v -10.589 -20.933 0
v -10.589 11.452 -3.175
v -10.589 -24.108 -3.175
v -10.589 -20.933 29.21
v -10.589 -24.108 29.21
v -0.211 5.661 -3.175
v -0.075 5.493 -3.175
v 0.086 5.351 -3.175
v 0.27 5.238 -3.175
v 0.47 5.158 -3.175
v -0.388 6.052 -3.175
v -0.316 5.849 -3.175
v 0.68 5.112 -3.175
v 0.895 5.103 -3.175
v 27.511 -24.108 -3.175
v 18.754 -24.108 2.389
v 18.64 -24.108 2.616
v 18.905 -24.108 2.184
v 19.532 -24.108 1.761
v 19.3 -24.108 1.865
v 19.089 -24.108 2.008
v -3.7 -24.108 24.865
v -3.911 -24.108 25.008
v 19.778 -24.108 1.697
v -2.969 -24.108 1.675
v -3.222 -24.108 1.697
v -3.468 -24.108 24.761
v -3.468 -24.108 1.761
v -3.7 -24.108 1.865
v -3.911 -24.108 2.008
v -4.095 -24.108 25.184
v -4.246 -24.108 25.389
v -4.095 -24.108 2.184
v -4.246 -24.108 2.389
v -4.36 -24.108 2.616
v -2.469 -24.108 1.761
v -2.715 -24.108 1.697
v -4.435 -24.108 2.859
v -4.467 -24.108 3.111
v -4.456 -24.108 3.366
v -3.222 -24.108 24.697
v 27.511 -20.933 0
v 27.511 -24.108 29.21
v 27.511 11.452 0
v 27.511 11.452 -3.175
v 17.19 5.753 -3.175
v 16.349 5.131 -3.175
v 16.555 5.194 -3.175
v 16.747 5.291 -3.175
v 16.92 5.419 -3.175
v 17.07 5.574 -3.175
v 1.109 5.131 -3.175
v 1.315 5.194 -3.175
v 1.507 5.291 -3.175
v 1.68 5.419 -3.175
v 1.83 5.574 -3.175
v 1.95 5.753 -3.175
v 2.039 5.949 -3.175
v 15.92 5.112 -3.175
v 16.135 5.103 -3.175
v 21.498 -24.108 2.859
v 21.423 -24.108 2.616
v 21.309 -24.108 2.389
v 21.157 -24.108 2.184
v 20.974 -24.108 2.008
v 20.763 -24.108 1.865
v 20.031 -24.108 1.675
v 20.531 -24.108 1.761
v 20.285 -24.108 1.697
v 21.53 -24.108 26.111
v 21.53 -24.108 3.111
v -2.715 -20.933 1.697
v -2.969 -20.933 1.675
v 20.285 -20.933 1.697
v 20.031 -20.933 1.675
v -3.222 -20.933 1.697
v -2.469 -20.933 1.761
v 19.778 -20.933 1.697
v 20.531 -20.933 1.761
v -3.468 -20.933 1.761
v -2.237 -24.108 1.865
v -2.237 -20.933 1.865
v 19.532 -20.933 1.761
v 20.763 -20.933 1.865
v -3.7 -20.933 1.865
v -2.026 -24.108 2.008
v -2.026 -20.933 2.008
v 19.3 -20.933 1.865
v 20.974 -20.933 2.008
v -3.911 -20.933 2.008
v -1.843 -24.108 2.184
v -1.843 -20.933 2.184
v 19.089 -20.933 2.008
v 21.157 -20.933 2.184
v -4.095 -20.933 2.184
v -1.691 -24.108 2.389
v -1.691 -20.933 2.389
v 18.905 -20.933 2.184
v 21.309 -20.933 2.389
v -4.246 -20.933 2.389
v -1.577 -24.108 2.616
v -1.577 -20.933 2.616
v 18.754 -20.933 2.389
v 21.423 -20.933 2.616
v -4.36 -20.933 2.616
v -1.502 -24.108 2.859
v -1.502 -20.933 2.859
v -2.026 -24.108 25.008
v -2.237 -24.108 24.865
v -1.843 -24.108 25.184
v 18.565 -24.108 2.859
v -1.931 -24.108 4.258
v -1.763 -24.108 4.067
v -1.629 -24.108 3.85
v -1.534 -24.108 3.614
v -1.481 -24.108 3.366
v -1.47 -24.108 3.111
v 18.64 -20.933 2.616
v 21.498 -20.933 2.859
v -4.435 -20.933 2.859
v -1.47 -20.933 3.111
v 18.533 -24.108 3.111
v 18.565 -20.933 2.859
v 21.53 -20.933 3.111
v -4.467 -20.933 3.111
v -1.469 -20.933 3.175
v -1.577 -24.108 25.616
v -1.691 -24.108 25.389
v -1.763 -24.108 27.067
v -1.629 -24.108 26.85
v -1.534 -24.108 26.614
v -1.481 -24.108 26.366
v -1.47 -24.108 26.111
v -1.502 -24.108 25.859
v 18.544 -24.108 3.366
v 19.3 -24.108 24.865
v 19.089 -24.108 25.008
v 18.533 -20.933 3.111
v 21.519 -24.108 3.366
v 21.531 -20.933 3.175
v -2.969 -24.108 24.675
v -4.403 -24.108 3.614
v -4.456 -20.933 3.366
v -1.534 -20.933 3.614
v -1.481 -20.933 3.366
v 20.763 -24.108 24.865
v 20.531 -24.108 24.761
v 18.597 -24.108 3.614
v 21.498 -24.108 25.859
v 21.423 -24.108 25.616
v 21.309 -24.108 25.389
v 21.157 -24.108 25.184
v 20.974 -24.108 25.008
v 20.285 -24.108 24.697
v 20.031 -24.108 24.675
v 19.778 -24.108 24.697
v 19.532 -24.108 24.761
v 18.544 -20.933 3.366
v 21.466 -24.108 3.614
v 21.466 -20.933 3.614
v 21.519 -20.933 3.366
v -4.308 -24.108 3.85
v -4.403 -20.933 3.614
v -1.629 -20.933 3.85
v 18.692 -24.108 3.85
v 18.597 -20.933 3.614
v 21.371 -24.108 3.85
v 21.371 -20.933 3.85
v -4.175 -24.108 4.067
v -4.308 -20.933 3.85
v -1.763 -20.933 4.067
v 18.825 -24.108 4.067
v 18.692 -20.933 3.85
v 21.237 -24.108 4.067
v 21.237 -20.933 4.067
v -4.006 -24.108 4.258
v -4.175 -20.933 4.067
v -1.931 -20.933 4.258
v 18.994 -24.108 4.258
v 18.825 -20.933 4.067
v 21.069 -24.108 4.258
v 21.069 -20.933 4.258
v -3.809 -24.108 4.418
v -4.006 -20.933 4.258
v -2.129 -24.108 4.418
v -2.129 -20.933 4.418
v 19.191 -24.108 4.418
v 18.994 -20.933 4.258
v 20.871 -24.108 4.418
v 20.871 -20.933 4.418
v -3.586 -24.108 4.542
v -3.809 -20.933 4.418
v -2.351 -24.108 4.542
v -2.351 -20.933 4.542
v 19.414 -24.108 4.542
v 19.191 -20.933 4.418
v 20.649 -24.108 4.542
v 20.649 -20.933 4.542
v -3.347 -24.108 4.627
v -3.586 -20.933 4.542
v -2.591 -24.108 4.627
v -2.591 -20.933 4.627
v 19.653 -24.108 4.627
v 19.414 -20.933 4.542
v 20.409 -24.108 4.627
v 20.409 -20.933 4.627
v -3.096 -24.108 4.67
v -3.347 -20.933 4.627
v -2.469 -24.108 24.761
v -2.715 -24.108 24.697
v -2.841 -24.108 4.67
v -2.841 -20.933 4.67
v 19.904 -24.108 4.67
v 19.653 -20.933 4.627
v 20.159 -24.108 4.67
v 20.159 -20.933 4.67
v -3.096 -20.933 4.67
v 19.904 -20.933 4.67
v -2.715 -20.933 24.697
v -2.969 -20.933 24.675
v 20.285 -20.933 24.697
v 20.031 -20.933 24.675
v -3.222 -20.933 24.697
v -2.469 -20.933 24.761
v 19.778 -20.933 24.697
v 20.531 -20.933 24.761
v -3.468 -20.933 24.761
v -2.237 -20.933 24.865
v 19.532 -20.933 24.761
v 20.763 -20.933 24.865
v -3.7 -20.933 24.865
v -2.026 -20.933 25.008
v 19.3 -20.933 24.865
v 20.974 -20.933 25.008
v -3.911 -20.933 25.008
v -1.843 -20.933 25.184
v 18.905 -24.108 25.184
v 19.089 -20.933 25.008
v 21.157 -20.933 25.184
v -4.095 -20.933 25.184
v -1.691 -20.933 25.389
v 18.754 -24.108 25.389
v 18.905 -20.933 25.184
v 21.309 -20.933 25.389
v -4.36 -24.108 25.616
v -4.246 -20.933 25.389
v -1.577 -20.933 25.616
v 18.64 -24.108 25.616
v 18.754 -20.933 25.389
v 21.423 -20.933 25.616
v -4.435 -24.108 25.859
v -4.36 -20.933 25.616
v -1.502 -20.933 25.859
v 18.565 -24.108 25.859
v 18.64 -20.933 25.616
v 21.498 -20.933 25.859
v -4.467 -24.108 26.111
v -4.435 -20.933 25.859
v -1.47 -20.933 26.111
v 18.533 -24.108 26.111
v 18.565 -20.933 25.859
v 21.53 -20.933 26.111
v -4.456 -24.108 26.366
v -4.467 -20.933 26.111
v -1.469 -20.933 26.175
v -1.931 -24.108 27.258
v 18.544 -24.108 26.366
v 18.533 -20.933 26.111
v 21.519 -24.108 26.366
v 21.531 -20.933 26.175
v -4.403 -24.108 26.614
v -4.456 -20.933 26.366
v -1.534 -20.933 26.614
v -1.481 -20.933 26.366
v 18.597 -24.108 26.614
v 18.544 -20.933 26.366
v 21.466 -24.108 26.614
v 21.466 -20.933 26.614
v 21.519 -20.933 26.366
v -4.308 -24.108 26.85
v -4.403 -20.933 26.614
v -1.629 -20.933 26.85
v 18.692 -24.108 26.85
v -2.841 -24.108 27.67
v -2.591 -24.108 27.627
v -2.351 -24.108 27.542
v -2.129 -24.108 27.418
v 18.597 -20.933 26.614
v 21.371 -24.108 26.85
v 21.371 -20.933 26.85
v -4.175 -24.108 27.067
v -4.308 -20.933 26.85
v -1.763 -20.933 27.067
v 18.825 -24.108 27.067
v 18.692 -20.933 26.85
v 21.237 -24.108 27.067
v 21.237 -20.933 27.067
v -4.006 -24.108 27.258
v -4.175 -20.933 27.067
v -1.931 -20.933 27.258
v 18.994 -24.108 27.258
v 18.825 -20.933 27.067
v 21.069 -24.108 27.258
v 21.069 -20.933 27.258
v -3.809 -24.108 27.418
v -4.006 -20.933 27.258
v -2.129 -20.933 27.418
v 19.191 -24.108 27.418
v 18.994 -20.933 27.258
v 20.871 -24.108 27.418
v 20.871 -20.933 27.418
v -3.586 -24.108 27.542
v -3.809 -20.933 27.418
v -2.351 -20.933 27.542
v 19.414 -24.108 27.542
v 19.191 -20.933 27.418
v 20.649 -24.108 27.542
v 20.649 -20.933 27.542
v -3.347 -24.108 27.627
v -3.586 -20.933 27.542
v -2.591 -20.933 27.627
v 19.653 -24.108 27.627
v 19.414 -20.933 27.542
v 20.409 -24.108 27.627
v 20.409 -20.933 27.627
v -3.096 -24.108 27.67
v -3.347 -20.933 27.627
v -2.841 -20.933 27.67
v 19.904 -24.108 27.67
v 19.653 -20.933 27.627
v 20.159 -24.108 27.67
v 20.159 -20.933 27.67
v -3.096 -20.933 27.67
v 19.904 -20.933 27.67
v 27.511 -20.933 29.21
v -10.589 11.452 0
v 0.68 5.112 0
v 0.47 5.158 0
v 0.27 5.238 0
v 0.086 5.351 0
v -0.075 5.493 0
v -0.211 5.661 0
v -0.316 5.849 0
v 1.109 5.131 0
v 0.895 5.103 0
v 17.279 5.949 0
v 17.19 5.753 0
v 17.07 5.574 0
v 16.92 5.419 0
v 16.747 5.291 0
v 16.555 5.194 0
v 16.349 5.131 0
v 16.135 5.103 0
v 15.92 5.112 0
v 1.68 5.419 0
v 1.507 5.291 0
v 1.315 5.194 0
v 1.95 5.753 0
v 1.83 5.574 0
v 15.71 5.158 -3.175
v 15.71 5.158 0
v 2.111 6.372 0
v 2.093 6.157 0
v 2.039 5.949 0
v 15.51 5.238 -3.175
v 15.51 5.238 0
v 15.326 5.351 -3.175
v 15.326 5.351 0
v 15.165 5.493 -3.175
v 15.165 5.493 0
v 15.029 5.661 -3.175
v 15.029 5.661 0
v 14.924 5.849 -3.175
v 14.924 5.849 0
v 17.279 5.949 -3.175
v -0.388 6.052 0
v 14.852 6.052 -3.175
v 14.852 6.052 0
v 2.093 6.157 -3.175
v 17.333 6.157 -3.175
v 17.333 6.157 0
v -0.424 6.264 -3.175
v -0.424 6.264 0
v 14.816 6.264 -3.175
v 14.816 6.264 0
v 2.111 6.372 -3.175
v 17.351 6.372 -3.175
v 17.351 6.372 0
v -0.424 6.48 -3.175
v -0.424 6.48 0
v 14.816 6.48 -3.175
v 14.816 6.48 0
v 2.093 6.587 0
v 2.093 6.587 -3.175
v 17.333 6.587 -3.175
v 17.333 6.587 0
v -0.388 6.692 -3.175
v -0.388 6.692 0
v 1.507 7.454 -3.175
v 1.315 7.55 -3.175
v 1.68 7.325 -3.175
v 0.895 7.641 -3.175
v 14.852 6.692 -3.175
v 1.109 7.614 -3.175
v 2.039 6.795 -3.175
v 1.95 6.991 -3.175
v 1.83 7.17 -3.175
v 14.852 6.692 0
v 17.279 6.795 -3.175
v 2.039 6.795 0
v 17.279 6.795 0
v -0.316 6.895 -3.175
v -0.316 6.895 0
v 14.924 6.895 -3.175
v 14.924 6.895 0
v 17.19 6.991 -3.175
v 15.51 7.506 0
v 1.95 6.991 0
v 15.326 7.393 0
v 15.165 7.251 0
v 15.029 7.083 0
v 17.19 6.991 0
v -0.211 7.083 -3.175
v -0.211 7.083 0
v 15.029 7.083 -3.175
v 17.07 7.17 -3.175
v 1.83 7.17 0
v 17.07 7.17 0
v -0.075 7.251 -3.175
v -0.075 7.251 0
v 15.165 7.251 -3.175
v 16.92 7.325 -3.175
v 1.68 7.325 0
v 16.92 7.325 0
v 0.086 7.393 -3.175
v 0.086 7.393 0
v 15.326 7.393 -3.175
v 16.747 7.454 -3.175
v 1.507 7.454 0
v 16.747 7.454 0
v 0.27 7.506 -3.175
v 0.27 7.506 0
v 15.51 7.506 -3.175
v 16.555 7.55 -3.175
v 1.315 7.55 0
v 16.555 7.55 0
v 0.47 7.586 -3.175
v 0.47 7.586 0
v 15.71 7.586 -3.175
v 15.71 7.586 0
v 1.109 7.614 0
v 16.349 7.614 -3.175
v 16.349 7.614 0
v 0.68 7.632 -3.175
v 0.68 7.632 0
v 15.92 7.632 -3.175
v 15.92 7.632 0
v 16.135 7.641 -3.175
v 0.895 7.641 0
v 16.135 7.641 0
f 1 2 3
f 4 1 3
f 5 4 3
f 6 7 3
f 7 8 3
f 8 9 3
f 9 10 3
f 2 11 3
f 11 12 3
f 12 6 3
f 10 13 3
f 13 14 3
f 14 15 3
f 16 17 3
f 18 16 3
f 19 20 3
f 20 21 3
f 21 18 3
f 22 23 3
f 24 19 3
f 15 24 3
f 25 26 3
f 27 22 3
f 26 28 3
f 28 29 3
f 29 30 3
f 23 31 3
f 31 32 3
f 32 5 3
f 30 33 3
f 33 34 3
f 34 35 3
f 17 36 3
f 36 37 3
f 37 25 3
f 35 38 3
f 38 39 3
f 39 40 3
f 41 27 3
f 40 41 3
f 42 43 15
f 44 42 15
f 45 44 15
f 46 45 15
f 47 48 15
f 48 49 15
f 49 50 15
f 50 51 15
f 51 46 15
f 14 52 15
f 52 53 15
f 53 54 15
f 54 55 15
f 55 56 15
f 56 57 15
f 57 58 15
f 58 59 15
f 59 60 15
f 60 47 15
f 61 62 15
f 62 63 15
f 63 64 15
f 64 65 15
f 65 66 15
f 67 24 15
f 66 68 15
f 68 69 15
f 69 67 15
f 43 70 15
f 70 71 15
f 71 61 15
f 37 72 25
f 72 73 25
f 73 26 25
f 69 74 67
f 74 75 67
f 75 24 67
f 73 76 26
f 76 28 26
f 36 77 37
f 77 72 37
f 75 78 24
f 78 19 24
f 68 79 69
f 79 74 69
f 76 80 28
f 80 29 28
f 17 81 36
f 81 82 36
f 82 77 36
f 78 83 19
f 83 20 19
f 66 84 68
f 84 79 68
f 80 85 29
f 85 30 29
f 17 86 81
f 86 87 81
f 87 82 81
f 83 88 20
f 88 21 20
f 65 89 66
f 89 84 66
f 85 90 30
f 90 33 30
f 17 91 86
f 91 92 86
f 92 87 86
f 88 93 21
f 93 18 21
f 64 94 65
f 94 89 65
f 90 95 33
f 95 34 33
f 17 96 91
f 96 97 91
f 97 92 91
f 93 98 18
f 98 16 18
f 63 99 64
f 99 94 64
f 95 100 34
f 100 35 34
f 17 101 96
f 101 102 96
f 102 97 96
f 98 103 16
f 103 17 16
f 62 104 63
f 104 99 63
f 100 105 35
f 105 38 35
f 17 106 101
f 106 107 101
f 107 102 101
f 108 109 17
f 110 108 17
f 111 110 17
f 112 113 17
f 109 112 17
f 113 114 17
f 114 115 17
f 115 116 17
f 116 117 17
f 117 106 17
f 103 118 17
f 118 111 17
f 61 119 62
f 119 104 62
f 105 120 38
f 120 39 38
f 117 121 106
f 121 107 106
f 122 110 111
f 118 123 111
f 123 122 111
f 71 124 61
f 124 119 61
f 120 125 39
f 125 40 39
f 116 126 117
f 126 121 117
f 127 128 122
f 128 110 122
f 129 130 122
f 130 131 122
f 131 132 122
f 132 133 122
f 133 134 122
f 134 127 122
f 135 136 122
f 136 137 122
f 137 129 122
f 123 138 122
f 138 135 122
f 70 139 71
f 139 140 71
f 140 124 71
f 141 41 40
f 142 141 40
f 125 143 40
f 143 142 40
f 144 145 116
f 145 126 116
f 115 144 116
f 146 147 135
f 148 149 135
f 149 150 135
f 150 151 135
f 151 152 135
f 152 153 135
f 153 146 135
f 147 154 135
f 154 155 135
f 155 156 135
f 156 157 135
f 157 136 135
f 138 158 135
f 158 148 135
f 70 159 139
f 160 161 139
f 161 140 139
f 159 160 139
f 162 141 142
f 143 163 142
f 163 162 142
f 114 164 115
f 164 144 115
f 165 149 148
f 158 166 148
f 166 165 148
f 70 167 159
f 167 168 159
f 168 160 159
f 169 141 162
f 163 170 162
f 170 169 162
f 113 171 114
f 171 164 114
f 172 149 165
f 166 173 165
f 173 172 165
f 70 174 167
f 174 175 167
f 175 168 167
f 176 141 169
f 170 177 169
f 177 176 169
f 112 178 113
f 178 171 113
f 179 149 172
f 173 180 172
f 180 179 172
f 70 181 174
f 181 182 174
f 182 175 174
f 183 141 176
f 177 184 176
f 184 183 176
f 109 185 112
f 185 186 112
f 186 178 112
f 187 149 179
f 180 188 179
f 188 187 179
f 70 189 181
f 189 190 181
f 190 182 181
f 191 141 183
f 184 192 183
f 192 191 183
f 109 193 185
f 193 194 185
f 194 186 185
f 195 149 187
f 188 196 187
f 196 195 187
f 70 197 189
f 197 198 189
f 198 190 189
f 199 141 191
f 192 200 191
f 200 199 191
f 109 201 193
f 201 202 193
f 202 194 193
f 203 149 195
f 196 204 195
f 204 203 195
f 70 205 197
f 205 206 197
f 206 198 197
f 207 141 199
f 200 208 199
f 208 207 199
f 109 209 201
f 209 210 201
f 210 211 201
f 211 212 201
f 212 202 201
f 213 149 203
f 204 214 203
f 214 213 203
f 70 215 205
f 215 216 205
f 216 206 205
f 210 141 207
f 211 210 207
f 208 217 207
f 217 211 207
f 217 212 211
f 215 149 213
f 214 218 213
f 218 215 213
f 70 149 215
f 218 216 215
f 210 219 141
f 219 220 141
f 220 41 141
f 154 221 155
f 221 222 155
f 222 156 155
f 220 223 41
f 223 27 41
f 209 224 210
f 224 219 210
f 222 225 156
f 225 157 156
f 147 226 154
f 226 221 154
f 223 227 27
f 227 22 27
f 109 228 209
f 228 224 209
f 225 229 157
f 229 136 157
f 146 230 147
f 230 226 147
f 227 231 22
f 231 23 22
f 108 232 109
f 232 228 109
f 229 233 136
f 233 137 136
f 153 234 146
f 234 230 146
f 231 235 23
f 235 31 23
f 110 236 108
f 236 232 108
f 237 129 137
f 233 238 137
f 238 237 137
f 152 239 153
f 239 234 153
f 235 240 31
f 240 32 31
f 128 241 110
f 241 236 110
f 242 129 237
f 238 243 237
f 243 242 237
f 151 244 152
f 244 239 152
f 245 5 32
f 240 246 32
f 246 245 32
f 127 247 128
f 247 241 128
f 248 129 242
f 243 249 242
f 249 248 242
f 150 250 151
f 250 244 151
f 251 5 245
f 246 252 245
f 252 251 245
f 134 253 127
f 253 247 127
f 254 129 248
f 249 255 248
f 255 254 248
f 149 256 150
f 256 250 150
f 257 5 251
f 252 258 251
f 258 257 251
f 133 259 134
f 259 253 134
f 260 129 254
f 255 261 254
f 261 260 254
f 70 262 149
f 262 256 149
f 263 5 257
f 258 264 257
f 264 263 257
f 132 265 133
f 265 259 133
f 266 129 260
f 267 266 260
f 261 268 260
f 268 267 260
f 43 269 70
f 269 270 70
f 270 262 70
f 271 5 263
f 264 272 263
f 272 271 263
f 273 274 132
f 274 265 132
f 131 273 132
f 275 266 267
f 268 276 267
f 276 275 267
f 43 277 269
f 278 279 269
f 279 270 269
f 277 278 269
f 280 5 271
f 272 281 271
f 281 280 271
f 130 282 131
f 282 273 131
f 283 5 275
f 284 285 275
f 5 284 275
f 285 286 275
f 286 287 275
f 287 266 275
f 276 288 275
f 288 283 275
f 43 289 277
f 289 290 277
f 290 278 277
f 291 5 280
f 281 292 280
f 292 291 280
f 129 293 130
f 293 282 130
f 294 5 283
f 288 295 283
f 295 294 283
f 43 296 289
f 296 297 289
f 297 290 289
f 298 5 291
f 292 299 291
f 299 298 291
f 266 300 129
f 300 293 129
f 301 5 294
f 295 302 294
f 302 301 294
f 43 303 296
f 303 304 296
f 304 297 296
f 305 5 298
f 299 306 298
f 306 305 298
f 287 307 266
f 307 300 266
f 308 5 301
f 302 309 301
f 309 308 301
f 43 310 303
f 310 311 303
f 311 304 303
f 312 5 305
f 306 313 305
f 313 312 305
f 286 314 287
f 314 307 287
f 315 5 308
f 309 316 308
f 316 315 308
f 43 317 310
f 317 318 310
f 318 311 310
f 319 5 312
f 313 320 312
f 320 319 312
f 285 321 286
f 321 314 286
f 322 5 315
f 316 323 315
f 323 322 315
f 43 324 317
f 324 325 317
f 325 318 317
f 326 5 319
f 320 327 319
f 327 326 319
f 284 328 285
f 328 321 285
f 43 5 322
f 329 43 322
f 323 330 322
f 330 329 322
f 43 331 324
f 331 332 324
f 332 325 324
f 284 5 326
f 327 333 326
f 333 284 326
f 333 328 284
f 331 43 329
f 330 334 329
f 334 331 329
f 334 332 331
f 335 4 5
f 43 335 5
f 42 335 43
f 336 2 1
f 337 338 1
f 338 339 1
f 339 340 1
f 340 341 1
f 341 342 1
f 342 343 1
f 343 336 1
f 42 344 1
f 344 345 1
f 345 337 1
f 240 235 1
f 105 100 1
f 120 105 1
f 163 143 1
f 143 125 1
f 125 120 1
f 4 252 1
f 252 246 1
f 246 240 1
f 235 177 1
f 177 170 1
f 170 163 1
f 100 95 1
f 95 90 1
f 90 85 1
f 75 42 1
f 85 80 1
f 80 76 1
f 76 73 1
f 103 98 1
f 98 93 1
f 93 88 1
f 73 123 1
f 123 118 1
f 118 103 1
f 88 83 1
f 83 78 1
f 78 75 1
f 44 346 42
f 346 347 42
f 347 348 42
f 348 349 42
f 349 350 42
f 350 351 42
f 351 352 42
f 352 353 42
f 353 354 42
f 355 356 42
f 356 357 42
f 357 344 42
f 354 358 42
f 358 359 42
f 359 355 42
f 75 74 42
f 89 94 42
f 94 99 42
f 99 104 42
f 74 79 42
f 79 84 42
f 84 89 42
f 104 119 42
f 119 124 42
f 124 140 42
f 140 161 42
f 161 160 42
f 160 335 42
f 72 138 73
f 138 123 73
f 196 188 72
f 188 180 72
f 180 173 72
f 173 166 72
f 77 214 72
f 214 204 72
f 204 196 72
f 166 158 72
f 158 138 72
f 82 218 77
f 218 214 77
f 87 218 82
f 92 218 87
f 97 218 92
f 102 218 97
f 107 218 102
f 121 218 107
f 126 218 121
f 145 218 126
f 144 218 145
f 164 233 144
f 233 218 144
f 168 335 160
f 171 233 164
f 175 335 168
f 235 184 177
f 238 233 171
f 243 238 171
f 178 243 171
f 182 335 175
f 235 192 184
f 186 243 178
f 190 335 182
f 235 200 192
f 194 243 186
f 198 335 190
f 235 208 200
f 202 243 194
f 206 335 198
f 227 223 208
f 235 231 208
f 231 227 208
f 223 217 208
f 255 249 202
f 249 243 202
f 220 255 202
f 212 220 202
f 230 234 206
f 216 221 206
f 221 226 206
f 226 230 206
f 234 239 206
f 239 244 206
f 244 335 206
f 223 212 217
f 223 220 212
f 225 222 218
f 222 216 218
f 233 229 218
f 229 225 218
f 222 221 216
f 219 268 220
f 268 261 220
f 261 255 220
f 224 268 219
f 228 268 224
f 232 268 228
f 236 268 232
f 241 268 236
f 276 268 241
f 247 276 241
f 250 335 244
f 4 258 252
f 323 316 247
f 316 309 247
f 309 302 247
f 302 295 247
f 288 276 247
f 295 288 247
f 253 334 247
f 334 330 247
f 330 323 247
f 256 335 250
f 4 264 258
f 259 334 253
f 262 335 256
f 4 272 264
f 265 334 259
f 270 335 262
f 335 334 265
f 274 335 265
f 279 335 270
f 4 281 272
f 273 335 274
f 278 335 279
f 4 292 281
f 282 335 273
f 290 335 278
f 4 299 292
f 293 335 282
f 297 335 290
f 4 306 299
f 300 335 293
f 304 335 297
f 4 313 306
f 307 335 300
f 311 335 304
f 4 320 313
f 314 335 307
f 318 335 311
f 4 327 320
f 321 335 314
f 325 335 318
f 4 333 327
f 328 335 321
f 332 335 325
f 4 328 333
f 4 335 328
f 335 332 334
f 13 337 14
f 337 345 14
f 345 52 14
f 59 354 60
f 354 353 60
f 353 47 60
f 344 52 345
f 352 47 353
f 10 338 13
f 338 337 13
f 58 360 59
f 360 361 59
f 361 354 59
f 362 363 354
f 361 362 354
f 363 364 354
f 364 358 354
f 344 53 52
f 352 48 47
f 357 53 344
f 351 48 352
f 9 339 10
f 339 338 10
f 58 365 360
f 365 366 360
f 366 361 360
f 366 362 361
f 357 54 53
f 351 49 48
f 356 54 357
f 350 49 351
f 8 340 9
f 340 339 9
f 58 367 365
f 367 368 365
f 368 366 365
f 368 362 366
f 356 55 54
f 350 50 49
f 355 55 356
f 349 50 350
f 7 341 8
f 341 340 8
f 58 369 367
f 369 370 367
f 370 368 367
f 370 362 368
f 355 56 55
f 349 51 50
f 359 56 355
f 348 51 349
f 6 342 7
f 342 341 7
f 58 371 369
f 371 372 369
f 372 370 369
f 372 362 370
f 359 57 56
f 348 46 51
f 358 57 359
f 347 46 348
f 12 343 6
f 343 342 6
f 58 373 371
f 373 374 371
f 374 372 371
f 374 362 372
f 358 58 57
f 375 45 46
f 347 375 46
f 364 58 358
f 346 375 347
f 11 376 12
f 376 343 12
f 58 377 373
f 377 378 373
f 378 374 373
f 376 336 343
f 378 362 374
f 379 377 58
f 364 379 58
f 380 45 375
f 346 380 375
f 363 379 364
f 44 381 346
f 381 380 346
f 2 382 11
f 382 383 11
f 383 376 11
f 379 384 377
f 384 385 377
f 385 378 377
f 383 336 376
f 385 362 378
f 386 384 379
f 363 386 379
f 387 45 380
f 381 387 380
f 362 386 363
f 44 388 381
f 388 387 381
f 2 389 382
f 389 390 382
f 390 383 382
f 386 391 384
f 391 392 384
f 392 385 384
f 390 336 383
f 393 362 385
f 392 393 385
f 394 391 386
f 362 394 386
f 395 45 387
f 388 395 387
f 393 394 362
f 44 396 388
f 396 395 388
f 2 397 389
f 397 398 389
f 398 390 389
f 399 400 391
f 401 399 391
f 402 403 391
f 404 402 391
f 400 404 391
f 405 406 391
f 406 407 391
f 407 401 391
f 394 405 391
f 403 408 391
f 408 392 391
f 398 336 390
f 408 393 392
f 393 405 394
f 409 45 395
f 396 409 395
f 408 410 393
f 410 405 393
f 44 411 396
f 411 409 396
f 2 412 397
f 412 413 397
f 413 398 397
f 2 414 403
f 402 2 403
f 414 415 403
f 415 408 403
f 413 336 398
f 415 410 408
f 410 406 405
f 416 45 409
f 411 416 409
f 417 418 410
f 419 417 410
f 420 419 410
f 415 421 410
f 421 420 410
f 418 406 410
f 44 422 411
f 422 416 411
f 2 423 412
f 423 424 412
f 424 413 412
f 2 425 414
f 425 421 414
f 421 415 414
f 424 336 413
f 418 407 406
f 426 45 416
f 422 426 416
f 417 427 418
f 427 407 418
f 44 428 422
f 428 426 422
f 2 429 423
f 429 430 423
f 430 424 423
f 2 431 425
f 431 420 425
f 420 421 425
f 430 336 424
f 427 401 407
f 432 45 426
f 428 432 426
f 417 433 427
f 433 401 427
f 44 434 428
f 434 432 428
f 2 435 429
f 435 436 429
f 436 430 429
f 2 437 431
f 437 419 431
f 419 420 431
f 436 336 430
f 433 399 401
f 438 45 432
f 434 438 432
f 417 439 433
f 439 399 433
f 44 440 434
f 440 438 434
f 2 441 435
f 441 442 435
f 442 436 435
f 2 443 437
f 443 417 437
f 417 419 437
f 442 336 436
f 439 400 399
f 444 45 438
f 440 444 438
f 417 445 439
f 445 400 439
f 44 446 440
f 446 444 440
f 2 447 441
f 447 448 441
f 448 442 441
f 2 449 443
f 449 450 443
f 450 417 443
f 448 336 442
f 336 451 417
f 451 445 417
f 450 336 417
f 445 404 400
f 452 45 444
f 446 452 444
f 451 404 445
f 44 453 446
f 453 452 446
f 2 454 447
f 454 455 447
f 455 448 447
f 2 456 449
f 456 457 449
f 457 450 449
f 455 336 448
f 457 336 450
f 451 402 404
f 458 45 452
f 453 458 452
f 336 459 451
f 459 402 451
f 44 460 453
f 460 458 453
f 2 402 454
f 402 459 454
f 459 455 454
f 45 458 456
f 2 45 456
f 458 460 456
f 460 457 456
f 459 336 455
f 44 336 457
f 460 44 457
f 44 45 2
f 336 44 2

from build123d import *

# Parameters (mm, degrees)
SKETCH1_W                  = 38.1
SKETCH1_H                  = 10.16
SKETCH1_R                  = 1.27
BOSS_EXTRUDE3_DEPTH        = 3.175
SKETCH7_W                  = 38.1
SKETCH7_H                  = 3.175
BOSS_EXTRUDE4_DEPTH        = 25.4
SKETCH8_W                  = 38.1
SKETCH8_H                  = 3.175
BOSS_EXTRUDE6_DEPTH        = 29.21
F_1_0_228_DIAMETER_HOLE1_D = 3.000000096


with BuildPart() as part:
    # Sketch1 → Boss-Extrude3 (new body)
    with BuildSketch(Plane.XY):
        with Locations((8.461414392, 6.372059553)):
            Rectangle(SKETCH1_W, SKETCH1_H)
        with Locations((16.081414392, 6.372059553)):
            Circle(SKETCH1_R, mode=Mode.SUBTRACT)
        with Locations((0.841414392, 6.372059553)):
            Circle(SKETCH1_R, mode=Mode.SUBTRACT)
    extrude(amount=-BOSS_EXTRUDE3_DEPTH)

    # Sketch7 → Boss-Extrude4 (add)
    with BuildSketch(Plane.XZ.offset(-1.292059553)):
        with Locations((8.461414392, -1.5875)):
            Rectangle(SKETCH7_W, SKETCH7_H)
    extrude(amount=BOSS_EXTRUDE4_DEPTH)

    # Sketch8 → Boss-Extrude6 (add)
    with BuildSketch(Plane.XY):
        with Locations((8.461414392, -22.520440447)):
            Rectangle(SKETCH8_W, SKETCH8_H)
    extrude(amount=BOSS_EXTRUDE6_DEPTH)

    # #1 (0.228) Diameter Hole1 (through all)
    with Locations(Plane(origin=(-2.968585608, -24.107940447, 3.175), x_dir=(0, 0, -1), z_dir=(0, -1, 0))):
        with Locations((0, 0), (0, 23), (-23, 23), (-23, 0)):
            Hole(F_1_0_228_DIAMETER_HOLE1_D / 2)


solid = part.part
